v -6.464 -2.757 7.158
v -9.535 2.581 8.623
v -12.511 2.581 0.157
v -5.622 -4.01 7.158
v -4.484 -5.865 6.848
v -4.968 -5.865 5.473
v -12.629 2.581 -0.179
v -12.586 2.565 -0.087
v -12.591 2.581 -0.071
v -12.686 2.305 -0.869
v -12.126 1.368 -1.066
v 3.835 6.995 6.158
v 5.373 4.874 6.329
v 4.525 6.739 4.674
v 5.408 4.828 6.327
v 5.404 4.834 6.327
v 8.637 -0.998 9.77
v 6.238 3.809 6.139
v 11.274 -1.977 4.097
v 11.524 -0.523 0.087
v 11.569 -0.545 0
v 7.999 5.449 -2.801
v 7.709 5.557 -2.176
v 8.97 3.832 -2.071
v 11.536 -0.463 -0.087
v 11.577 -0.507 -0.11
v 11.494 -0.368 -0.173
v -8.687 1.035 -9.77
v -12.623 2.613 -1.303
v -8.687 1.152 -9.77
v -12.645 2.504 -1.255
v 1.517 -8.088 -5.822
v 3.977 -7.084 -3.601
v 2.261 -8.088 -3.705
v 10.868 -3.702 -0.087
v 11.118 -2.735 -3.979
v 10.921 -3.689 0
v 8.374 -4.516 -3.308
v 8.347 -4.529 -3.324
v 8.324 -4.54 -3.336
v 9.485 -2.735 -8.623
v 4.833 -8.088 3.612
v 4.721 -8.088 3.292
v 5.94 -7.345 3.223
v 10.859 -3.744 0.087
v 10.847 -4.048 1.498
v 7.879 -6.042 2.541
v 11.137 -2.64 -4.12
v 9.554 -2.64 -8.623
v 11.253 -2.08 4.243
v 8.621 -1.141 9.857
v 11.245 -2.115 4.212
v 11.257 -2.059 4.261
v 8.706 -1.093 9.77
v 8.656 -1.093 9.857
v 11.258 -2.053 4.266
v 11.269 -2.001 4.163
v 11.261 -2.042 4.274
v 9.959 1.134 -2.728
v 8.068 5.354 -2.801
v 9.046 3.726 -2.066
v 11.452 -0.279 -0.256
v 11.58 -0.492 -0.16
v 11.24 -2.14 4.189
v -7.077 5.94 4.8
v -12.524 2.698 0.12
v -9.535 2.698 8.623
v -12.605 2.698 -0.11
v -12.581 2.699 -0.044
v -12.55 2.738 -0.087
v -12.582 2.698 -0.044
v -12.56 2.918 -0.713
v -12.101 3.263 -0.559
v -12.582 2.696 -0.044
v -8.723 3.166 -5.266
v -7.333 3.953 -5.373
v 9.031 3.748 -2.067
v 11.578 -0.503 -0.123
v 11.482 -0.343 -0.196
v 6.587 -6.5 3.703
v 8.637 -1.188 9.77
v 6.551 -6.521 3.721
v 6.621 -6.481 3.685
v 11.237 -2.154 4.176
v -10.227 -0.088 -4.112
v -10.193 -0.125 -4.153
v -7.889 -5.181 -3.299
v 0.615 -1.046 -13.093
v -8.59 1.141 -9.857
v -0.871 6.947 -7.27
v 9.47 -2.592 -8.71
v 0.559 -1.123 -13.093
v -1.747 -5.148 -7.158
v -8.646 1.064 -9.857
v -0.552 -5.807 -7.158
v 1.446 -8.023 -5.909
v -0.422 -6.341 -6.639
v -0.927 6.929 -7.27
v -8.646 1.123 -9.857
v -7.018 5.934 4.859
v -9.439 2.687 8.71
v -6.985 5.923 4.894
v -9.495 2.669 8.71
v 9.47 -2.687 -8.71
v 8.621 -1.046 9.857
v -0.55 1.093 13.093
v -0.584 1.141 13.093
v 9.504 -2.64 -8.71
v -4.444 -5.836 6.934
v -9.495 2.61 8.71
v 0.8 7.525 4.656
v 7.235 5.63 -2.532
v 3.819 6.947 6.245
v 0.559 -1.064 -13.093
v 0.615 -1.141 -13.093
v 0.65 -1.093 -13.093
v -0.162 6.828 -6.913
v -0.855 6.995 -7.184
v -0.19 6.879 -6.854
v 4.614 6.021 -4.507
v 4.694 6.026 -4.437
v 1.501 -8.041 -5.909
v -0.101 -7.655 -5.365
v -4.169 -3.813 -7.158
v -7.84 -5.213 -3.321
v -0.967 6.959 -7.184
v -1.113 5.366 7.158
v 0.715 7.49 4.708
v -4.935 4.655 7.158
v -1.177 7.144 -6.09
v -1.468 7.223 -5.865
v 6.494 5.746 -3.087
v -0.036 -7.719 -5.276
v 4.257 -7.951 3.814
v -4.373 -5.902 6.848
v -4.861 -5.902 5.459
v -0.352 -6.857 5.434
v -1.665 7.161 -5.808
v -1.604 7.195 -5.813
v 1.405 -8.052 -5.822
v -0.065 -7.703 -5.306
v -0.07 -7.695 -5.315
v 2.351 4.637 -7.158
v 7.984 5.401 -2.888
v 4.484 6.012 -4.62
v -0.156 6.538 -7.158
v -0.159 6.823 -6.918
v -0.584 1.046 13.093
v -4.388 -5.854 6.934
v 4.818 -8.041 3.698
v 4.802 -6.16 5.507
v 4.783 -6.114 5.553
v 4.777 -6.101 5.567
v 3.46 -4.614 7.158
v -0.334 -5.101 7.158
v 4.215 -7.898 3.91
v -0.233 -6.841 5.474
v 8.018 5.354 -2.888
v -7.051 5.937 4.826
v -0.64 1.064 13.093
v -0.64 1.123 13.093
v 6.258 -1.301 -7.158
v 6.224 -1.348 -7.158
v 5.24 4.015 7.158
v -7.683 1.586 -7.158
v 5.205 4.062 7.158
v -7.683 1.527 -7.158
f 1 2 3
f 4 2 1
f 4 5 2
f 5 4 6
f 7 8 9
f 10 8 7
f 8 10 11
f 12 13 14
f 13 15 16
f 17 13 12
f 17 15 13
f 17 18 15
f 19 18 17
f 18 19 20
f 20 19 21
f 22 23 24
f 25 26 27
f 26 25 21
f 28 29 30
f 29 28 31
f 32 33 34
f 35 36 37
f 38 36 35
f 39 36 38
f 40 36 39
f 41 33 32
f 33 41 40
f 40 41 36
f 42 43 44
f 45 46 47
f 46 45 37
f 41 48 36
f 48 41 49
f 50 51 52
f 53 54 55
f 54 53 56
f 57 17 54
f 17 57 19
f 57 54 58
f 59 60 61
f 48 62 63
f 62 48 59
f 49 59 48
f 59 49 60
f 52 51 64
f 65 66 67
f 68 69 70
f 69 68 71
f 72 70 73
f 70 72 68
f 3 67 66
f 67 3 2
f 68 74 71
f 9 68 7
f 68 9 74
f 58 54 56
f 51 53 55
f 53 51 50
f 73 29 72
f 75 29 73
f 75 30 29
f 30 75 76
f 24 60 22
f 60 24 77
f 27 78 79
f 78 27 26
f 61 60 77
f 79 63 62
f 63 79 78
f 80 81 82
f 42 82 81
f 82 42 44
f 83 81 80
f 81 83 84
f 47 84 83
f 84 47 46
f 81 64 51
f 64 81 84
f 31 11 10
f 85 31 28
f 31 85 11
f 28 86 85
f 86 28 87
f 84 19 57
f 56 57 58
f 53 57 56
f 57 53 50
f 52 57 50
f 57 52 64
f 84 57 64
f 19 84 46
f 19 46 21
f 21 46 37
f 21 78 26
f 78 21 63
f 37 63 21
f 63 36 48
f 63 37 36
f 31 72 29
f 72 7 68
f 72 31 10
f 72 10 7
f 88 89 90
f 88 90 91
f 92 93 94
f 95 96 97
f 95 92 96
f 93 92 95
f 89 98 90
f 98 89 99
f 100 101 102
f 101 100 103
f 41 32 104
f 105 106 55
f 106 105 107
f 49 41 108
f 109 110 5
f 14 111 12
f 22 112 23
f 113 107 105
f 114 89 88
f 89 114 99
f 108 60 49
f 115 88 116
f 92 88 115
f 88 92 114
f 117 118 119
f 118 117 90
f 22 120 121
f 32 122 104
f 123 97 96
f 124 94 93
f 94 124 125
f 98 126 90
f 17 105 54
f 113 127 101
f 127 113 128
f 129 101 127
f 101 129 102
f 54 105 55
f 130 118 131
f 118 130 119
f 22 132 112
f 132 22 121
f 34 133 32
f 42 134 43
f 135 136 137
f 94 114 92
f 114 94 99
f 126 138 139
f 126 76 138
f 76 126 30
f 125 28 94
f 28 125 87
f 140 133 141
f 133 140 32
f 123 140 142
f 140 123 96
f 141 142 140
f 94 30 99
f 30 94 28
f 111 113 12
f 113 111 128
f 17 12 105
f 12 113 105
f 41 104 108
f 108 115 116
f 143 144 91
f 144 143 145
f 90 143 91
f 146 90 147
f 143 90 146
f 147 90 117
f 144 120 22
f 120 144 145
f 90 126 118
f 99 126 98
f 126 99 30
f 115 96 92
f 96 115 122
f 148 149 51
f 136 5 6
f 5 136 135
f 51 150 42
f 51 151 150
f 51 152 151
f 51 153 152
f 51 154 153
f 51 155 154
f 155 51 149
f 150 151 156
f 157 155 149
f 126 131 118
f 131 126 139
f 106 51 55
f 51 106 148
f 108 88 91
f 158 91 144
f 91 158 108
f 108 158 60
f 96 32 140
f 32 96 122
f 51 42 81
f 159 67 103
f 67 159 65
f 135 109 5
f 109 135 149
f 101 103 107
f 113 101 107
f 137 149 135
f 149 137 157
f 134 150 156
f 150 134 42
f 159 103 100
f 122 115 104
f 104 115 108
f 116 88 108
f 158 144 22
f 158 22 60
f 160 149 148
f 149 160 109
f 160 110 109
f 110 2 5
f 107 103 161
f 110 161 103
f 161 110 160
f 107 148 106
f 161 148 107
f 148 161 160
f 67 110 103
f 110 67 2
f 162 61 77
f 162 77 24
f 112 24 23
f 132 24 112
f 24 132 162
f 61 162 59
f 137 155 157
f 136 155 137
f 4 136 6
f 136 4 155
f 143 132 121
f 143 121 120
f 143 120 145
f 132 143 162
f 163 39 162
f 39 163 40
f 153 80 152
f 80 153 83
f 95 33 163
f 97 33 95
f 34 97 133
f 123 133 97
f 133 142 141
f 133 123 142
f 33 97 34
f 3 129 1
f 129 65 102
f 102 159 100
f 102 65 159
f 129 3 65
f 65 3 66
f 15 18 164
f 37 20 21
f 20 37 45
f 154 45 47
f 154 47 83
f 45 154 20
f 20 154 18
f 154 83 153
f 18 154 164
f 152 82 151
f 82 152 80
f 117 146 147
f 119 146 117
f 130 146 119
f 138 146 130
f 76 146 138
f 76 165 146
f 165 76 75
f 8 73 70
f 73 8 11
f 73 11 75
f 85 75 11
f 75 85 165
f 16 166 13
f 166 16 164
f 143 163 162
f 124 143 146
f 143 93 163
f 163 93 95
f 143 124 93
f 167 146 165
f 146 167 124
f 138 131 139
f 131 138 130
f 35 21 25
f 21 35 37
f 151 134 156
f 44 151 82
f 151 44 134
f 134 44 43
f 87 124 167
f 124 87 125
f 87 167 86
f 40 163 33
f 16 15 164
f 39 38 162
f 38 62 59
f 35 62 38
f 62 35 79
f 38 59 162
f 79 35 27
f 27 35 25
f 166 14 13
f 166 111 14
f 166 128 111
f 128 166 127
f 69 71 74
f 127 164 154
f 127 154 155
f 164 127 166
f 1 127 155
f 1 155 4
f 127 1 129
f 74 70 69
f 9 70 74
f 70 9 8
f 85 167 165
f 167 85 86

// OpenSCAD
// Auto-generated OpenSCAD file

    inner_points = 10*[[0.6618356586031374, 1.0939888076971127, -5.2961835526280225e-12], [1.2115149155156972, 0.2586130153018244, -8.202180877206917e-12], [-1.3549399090757386, -0.23305430929635412, 8.202180877206917e-12], [-0.8052606521631785, -1.0684301016916424, 5.2961835526280225e-12], [-0.3175461590791098, 1.296006765298453, 7.122462682630471e-13], [1.009496957914357, -0.7207688023804228, -6.30345188495525e-12], [-1.1529219514743982, 0.7463275083858931, 6.30345188495525e-12], [0.1741211655190687, -1.2704480592929828, -7.122462682630471e-13], [0.5189873908662057, 0.40146128304364537, 0.707106781182594], [-0.6624123844173823, -0.37590257703726176, 0.7071067811905012], [-0.4603944268160419, 0.6034792406449857, 0.7071067811886024], [0.31696943326486526, -0.5779205346386022, 0.7071067811844928], [0.07113577095691147, 0.7053068776562026, -0.7071067811878903], [0.6208150278694714, -0.13006891473908572, -0.7071067811907962], [-0.764240021438377, 0.15562762074364267, -0.707106781182299], [-0.21456076452581702, -0.6797481716516456, -0.7071067811852049]];

    outer_points = 10*[[-0.8605920804643427, 0.10933680605329854, -0.9770023106782629], [0.05998820059622045, -0.10933680605329854, -1.300597424193143], [-0.05998820059622045, 0.10933680605329854, 1.300597424193143], [0.8605920804643427, -0.10933680605329854, 0.9770023106782629], [-1.2770491924597716, 0.26396240004043003, -0.08109249403790869], [0.9454282073298752, -0.26396240004043003, -0.8623202058031931], [-0.9454282073298752, 0.26396240004043003, 0.8623202058031931], [1.2770491924597716, -0.26396240004043003, 0.08109249403790869], [-0.08861569828117916, 0.689993424377455, -0.7183706093194601], [0.38036719645704675, 0.689993424377455, 0.6158164257108442], [-0.5050728102766082, 0.8446190183645865, 0.17753920732089434], [0.7968243084524758, 0.5353678303903235, -0.2800933909295102], [-0.7719763821831634, -0.5806566183241565, -0.258631701358803], [0.1486038988773996, -0.7993302304307536, -0.582226814873683], [-0.4403553970532671, -0.5806566183241565, 0.6847809984822989], [0.48022488400729596, -0.7993302304307536, 0.3611858849674189]];

    // Convex hull for inner set (I)
    module inner_hull() {
        hull() {
            for (p = inner_points) {
                translate(p) sphere(r=0.1);
            }
        }
    }

    // Convex hull for outer set (O) minus inner hull (O \ I)
    module outer_minus_inner() {
        difference() {
            hull() {
                for (p = outer_points) {
                    translate(p) sphere(r=0.1);
                }
            }
            inner_hull(); // Subtract inner hull
        }
    }

    // Convex hull for outer set (O) minus all translated inner hulls
    module outer_minus_AllTranslationInner() {
        difference() {
            hull() {
                for (p = outer_points) {
                    translate(p) sphere(r=0.1);
                }
            }
            hull() {
                translate([0,0,50]) inner_hull();
                translate([0,0,-50]) inner_hull();
            }; // Subtract translated inner hulls
        }
    }

    // Difference between outer_minus_inner and outer_minus_AllTranslationInner
    module outer_minus_inner_diff() {
        difference() {
            // Outer minus inner
            difference() {
                hull() {
                    for (p = outer_points) {
                        translate(p) sphere(r=0.1);
                    }
                }
                inner_hull();
            }

            // Subtract Outer minus AllTranslationInner
            difference() {
                hull() {
                    for (p = outer_points) {
                        translate(p) sphere(r=0.1);
                    }
                }
                hull() {
                    translate([0,0,50]) inner_hull();
                    translate([0,0,-50]) inner_hull();
                };
            }
        }
    }

    // Rendering all with colors applied
    color([1, 1, 0, 1]) outer_minus_inner_diff(); // Opaque yellow
    
